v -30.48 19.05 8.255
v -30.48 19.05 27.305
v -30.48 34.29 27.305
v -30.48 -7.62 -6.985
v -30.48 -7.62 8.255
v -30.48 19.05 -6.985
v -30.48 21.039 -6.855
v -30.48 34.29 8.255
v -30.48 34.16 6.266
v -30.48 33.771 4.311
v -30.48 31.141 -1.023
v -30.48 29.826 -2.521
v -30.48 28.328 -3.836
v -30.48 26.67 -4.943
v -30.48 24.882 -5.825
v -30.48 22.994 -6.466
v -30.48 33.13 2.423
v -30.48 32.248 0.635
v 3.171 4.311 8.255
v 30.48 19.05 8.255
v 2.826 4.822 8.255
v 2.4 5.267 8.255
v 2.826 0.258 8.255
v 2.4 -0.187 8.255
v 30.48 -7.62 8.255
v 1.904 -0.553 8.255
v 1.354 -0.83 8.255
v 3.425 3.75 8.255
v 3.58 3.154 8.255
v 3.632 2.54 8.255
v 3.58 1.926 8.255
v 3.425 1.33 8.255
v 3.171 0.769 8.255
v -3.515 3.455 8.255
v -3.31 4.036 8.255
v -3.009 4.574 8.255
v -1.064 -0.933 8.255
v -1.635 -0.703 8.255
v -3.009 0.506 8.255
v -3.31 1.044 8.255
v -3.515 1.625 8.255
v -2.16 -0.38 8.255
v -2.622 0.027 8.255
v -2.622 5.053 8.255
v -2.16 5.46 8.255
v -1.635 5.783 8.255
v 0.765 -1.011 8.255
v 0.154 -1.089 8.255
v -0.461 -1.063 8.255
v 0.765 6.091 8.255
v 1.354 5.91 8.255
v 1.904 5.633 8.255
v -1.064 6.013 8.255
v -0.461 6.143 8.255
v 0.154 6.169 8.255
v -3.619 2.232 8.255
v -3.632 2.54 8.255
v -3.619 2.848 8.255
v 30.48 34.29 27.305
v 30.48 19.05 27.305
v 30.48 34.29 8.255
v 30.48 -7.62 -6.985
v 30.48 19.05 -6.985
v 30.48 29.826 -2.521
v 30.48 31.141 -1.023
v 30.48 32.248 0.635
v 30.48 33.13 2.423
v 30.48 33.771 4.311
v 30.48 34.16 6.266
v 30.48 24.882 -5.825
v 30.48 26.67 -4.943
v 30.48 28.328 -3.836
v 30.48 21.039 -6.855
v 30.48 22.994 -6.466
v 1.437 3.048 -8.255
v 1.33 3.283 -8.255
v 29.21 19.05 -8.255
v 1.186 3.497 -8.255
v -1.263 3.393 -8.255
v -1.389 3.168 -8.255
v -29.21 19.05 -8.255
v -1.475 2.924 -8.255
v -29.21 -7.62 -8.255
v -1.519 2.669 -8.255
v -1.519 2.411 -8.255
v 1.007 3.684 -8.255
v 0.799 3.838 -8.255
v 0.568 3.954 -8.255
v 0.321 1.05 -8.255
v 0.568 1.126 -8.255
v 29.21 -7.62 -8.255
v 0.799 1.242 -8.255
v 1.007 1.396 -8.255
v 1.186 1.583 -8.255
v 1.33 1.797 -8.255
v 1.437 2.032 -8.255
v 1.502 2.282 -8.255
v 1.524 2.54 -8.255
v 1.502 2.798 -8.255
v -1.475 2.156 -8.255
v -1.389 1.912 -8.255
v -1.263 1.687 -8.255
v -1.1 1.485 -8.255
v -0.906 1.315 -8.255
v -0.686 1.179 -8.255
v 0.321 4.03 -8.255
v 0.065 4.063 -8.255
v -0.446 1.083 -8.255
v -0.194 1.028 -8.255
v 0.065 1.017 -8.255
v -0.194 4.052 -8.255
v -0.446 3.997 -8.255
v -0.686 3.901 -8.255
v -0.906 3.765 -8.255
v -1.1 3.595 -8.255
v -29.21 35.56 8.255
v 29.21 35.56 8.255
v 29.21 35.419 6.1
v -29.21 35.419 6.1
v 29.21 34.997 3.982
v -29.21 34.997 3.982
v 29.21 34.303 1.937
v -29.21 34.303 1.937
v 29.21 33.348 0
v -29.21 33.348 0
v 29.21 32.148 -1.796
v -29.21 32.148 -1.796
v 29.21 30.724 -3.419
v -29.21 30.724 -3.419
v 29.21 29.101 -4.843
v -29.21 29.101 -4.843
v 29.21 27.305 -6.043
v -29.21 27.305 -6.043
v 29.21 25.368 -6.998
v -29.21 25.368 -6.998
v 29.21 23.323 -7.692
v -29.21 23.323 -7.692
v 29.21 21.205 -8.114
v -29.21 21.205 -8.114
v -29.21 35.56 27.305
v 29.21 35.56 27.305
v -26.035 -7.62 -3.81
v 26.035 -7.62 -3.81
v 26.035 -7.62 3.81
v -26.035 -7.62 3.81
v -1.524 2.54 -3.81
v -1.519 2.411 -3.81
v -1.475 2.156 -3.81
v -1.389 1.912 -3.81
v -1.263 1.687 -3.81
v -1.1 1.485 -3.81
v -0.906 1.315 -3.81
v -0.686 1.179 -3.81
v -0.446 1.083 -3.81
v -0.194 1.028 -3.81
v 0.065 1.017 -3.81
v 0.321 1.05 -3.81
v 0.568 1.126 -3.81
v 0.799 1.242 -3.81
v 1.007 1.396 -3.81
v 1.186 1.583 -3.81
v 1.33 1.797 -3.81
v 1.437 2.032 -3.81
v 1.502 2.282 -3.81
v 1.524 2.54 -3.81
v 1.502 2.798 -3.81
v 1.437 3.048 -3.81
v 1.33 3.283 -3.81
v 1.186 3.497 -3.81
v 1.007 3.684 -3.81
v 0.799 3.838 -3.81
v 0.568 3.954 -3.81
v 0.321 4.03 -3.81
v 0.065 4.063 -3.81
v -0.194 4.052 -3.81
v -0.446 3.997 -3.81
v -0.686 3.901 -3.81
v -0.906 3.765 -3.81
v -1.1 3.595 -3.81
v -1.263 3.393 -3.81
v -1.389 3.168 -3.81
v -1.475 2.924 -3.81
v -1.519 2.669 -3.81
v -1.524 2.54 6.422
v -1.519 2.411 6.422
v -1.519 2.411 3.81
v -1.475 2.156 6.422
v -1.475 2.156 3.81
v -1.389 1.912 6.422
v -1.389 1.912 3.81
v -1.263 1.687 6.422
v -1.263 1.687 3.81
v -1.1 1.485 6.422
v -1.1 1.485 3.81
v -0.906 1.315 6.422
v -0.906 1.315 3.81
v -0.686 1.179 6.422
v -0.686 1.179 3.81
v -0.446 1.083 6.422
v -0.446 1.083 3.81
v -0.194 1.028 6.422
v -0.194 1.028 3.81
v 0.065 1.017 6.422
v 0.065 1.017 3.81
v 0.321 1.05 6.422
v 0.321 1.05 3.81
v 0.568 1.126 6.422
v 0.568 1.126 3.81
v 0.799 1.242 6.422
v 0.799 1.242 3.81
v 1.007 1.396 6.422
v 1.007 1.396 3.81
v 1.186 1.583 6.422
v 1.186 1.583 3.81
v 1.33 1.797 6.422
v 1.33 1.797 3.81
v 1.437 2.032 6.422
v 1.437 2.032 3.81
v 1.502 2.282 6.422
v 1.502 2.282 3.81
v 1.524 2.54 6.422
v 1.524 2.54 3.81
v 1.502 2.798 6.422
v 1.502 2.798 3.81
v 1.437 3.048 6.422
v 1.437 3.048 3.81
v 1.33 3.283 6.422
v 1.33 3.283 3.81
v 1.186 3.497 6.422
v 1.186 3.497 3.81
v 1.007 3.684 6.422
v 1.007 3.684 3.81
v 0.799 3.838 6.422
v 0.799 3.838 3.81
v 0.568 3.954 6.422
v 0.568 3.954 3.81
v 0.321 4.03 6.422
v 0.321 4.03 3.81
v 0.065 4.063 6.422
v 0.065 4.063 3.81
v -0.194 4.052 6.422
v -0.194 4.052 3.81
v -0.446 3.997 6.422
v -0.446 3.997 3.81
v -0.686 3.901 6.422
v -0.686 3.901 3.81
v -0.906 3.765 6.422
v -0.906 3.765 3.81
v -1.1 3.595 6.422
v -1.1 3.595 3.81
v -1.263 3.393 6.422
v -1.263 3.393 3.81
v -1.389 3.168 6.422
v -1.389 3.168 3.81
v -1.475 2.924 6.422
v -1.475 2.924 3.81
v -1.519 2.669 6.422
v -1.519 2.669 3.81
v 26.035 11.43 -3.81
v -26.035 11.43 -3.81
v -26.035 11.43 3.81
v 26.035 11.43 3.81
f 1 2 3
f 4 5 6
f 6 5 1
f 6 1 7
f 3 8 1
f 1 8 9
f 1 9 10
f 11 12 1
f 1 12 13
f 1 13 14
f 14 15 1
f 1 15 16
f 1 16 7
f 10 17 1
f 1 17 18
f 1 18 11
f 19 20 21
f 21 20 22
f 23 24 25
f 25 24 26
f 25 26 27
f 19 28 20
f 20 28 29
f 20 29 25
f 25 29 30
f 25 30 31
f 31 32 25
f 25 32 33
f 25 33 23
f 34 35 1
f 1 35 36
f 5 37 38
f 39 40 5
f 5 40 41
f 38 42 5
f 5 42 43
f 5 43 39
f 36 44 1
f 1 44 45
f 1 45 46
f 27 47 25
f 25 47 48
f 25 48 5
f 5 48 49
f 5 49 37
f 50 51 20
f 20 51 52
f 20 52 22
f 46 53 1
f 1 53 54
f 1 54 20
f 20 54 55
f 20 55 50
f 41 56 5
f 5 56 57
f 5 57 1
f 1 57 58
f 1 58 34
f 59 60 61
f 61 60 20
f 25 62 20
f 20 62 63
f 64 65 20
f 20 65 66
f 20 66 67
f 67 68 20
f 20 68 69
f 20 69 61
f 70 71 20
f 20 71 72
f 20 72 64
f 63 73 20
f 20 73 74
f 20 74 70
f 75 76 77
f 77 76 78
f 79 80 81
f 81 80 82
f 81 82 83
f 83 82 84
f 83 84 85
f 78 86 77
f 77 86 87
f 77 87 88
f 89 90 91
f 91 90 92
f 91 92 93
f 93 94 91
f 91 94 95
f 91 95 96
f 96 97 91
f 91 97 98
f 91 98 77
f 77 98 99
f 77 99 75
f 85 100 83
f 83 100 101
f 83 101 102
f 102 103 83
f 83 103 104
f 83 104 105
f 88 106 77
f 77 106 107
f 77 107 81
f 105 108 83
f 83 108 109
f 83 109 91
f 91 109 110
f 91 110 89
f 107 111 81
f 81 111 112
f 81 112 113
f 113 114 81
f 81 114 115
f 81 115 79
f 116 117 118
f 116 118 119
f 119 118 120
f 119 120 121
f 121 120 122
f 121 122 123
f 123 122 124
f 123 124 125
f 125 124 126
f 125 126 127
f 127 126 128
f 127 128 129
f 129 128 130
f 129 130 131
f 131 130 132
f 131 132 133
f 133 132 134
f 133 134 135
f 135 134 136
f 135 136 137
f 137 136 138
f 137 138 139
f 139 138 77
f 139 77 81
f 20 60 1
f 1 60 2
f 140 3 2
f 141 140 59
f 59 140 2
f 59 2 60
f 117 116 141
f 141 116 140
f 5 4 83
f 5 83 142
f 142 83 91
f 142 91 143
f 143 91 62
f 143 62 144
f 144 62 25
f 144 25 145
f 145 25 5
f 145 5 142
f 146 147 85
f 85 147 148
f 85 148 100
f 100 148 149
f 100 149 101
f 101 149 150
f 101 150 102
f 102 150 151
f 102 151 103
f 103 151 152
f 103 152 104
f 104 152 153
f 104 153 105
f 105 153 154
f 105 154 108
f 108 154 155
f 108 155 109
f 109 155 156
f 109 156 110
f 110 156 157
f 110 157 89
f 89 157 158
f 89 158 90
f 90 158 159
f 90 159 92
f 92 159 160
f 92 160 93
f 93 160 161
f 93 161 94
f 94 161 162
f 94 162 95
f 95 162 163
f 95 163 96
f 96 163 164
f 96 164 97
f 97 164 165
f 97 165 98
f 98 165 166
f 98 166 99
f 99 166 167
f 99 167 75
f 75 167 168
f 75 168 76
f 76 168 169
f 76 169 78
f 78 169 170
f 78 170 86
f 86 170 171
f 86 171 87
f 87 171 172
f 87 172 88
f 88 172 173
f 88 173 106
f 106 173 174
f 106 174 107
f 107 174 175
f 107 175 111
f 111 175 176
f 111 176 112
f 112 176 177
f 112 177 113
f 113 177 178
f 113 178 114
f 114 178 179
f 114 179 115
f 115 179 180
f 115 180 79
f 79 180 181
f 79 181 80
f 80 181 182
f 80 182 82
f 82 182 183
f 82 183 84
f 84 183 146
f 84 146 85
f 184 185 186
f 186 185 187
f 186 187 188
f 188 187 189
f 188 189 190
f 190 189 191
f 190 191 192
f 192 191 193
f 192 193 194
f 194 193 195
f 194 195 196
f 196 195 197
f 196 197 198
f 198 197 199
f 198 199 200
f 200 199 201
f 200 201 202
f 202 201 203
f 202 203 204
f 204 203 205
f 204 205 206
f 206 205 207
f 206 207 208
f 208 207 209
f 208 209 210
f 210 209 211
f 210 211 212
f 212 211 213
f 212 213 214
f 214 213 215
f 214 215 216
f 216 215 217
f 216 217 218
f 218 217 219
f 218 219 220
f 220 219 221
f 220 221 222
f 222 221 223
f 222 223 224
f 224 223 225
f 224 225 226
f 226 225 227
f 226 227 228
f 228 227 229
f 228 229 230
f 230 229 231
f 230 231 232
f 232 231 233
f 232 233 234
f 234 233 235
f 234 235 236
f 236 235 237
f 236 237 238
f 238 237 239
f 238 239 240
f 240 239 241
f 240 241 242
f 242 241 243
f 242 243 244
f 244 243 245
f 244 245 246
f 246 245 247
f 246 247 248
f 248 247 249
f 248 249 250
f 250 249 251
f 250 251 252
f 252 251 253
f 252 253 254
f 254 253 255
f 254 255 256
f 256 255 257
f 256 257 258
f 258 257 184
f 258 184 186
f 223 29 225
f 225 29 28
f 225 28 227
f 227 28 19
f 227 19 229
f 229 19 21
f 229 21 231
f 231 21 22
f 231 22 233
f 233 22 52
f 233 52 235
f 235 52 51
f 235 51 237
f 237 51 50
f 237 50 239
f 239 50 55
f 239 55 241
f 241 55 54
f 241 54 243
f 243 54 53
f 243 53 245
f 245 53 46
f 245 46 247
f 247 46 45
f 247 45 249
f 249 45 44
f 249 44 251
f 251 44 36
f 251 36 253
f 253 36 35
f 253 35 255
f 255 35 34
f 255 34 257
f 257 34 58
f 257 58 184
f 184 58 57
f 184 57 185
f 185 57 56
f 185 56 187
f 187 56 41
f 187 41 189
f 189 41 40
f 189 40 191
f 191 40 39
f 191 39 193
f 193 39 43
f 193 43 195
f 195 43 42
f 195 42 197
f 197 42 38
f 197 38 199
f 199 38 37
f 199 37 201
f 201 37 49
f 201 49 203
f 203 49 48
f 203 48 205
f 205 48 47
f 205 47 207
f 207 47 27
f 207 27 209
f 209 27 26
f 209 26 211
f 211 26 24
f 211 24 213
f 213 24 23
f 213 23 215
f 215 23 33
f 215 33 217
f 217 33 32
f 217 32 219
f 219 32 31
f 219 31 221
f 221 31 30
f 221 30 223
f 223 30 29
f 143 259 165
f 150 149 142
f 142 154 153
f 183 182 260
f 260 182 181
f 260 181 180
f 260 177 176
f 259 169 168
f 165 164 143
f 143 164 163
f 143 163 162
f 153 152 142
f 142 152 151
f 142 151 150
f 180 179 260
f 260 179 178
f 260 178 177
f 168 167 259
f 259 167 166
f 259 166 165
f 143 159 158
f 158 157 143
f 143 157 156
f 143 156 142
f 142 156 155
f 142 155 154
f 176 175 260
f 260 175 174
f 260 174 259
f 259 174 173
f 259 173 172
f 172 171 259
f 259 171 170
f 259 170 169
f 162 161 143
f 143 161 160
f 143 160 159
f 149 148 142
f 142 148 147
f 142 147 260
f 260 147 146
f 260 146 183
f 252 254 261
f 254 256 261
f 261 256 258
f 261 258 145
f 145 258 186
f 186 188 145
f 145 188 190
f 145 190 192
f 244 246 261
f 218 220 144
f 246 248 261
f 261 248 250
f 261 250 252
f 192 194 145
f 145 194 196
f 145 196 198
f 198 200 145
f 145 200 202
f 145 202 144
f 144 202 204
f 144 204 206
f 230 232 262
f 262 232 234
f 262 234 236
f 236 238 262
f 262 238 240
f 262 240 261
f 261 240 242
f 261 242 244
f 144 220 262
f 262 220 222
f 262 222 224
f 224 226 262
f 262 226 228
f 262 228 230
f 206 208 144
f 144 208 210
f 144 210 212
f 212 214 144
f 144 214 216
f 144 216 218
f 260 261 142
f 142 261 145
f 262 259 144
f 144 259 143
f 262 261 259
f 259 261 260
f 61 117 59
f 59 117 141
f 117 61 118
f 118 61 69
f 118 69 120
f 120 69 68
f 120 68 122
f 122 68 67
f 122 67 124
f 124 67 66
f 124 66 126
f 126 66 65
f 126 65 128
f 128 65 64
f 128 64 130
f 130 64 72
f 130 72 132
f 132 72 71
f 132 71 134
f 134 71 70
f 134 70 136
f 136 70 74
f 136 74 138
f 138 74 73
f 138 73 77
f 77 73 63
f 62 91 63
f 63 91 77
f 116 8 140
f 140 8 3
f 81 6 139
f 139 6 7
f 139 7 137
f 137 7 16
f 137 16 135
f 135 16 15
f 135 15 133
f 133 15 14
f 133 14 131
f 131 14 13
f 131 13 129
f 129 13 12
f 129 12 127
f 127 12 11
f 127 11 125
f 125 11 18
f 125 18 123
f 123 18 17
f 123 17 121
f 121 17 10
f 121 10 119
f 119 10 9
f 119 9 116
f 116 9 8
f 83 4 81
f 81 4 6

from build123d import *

# Parameters (mm, degrees)
SKETCH1_W           = 60.96
SKETCH1_H           = 16.51
SKETCH1_W_2         = 50.8
SKETCH1_H_2         = 6.35
BOSS_EXTRUDE1_DEPTH = 19.05
BOSS_EXTRUDE2_DEPTH = 60.96
SKETCH6_W           = 60.96
SKETCH6_H           = 16.51
SKETCH6_W_2         = 50.8
SKETCH6_H_2         = 6.35
BOSS_EXTRUDE3_DEPTH = 7.62
SKETCH7_W           = 50.8
SKETCH7_H           = 6.35
BOSS_EXTRUDE4_DEPTH = 7.62
SKETCH9_R           = 1.524
CUT_EXTRUDE1_DEPTH  = 51.561314263
CHAMFER1_SIZE       = 2.1082
CHAMFER1_SIZE2      = 1.832630301
SKETCH11_W          = 52.07
SKETCH11_H          = 7.62
CUT_EXTRUDE2_DEPTH  = 19.05
CHAMFER2_SIZE       = 1.27


with BuildPart() as part:
    # Sketch1 → Boss-Extrude1 (new body)
    with BuildSketch(Plane(origin=(0, 0, 0), x_dir=(1, 0, 0), z_dir=(0, 1, 0))):
        Rectangle(SKETCH1_W, SKETCH1_H)
        Rectangle(SKETCH1_W_2, SKETCH1_H_2, mode=Mode.SUBTRACT)
    extrude(amount=BOSS_EXTRUDE1_DEPTH)

    # Sketch5 → Boss-Extrude2 (add)
    with BuildSketch(Plane(origin=(30.48, 0, 0), x_dir=(0, 0, -1), z_dir=(1, 0, 0))):
        with BuildLine():
            Line((-8.255, 35.56), (-27.305, 35.56))
            Line((-27.305, 35.56), (-27.305, 19.05))
            Line((-27.305, 19.05), (-8.255, 19.05))
            Line((-8.255, 19.05), (8.255, 19.05))
            ThreePointArc((8.255, 19.05), (3.419332957, 30.724332957), (-8.255, 35.56))
        make_face()
    extrude(amount=-BOSS_EXTRUDE2_DEPTH)

    # Sketch6 → Boss-Extrude3 (add)
    with BuildSketch(Plane.XZ):
        Rectangle(SKETCH6_W, SKETCH6_H)
        Rectangle(SKETCH6_W_2, SKETCH6_H_2, mode=Mode.SUBTRACT)
    extrude(amount=BOSS_EXTRUDE3_DEPTH)

    # Sketch7 → Boss-Extrude4 (add)
    with BuildSketch(Plane.XZ.offset(-19.05)):
        Rectangle(SKETCH7_W, SKETCH7_H)
    extrude(amount=BOSS_EXTRUDE4_DEPTH)

    # Sketch9 → Cut-Extrude1 (cut, through all)
    with BuildSketch(Plane.XY.offset(8.255)):
        with Locations((0, 2.54)):
            Circle(SKETCH9_R)
    extrude(amount=-CUT_EXTRUDE1_DEPTH, mode=Mode.SUBTRACT)

    # Chamfer1
    chamfer1_edges = [part.edges().sort_by_distance(p)[0] for p in [
        (-1.524, 2.54, 8.255),
    ]]
    chamfer1_side = [part.faces().sort_by_distance(p)[0] for p in [
        (0, 5.729313606, 8.255),
    ]]
    chamfer(chamfer1_edges, length=CHAMFER1_SIZE, length2=CHAMFER1_SIZE2, reference=chamfer1_side[0])

    # Sketch11 → Cut-Extrude2 (cut)
    with BuildSketch(Plane.XZ.offset(7.62)):
        Rectangle(SKETCH11_W, SKETCH11_H)
    extrude(amount=-CUT_EXTRUDE2_DEPTH, mode=Mode.SUBTRACT)

    # Chamfer2
    chamfer2_edges = [part.edges().sort_by_distance(p)[0] for p in [
        (30.48, 30.724332957, -3.419332957),
        (30.48, 35.56, 17.78),
        (-30.48, 30.724332957, -3.419332957),
        (-30.48, 35.56, 17.78),
        (-30.48, 5.715, -8.255),
        (30.48, 5.715, -8.255),
    ]]
    chamfer(chamfer2_edges, length=CHAMFER2_SIZE)


solid = part.part
